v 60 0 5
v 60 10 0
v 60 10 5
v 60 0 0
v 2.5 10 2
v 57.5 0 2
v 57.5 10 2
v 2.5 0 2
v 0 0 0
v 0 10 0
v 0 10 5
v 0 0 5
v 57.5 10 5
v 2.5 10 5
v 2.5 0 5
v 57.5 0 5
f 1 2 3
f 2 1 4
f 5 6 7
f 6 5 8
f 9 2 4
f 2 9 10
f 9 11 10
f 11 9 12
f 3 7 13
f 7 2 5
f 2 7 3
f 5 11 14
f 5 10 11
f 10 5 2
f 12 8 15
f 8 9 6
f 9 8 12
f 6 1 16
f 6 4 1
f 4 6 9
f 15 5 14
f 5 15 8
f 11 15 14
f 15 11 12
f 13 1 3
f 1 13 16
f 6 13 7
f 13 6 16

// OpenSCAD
cube([60, 10, 2]);
cube([2.5, 10, 5]);
translate([57.5, 0, 0]) {
    cube([2.5, 10, 5]);
}
